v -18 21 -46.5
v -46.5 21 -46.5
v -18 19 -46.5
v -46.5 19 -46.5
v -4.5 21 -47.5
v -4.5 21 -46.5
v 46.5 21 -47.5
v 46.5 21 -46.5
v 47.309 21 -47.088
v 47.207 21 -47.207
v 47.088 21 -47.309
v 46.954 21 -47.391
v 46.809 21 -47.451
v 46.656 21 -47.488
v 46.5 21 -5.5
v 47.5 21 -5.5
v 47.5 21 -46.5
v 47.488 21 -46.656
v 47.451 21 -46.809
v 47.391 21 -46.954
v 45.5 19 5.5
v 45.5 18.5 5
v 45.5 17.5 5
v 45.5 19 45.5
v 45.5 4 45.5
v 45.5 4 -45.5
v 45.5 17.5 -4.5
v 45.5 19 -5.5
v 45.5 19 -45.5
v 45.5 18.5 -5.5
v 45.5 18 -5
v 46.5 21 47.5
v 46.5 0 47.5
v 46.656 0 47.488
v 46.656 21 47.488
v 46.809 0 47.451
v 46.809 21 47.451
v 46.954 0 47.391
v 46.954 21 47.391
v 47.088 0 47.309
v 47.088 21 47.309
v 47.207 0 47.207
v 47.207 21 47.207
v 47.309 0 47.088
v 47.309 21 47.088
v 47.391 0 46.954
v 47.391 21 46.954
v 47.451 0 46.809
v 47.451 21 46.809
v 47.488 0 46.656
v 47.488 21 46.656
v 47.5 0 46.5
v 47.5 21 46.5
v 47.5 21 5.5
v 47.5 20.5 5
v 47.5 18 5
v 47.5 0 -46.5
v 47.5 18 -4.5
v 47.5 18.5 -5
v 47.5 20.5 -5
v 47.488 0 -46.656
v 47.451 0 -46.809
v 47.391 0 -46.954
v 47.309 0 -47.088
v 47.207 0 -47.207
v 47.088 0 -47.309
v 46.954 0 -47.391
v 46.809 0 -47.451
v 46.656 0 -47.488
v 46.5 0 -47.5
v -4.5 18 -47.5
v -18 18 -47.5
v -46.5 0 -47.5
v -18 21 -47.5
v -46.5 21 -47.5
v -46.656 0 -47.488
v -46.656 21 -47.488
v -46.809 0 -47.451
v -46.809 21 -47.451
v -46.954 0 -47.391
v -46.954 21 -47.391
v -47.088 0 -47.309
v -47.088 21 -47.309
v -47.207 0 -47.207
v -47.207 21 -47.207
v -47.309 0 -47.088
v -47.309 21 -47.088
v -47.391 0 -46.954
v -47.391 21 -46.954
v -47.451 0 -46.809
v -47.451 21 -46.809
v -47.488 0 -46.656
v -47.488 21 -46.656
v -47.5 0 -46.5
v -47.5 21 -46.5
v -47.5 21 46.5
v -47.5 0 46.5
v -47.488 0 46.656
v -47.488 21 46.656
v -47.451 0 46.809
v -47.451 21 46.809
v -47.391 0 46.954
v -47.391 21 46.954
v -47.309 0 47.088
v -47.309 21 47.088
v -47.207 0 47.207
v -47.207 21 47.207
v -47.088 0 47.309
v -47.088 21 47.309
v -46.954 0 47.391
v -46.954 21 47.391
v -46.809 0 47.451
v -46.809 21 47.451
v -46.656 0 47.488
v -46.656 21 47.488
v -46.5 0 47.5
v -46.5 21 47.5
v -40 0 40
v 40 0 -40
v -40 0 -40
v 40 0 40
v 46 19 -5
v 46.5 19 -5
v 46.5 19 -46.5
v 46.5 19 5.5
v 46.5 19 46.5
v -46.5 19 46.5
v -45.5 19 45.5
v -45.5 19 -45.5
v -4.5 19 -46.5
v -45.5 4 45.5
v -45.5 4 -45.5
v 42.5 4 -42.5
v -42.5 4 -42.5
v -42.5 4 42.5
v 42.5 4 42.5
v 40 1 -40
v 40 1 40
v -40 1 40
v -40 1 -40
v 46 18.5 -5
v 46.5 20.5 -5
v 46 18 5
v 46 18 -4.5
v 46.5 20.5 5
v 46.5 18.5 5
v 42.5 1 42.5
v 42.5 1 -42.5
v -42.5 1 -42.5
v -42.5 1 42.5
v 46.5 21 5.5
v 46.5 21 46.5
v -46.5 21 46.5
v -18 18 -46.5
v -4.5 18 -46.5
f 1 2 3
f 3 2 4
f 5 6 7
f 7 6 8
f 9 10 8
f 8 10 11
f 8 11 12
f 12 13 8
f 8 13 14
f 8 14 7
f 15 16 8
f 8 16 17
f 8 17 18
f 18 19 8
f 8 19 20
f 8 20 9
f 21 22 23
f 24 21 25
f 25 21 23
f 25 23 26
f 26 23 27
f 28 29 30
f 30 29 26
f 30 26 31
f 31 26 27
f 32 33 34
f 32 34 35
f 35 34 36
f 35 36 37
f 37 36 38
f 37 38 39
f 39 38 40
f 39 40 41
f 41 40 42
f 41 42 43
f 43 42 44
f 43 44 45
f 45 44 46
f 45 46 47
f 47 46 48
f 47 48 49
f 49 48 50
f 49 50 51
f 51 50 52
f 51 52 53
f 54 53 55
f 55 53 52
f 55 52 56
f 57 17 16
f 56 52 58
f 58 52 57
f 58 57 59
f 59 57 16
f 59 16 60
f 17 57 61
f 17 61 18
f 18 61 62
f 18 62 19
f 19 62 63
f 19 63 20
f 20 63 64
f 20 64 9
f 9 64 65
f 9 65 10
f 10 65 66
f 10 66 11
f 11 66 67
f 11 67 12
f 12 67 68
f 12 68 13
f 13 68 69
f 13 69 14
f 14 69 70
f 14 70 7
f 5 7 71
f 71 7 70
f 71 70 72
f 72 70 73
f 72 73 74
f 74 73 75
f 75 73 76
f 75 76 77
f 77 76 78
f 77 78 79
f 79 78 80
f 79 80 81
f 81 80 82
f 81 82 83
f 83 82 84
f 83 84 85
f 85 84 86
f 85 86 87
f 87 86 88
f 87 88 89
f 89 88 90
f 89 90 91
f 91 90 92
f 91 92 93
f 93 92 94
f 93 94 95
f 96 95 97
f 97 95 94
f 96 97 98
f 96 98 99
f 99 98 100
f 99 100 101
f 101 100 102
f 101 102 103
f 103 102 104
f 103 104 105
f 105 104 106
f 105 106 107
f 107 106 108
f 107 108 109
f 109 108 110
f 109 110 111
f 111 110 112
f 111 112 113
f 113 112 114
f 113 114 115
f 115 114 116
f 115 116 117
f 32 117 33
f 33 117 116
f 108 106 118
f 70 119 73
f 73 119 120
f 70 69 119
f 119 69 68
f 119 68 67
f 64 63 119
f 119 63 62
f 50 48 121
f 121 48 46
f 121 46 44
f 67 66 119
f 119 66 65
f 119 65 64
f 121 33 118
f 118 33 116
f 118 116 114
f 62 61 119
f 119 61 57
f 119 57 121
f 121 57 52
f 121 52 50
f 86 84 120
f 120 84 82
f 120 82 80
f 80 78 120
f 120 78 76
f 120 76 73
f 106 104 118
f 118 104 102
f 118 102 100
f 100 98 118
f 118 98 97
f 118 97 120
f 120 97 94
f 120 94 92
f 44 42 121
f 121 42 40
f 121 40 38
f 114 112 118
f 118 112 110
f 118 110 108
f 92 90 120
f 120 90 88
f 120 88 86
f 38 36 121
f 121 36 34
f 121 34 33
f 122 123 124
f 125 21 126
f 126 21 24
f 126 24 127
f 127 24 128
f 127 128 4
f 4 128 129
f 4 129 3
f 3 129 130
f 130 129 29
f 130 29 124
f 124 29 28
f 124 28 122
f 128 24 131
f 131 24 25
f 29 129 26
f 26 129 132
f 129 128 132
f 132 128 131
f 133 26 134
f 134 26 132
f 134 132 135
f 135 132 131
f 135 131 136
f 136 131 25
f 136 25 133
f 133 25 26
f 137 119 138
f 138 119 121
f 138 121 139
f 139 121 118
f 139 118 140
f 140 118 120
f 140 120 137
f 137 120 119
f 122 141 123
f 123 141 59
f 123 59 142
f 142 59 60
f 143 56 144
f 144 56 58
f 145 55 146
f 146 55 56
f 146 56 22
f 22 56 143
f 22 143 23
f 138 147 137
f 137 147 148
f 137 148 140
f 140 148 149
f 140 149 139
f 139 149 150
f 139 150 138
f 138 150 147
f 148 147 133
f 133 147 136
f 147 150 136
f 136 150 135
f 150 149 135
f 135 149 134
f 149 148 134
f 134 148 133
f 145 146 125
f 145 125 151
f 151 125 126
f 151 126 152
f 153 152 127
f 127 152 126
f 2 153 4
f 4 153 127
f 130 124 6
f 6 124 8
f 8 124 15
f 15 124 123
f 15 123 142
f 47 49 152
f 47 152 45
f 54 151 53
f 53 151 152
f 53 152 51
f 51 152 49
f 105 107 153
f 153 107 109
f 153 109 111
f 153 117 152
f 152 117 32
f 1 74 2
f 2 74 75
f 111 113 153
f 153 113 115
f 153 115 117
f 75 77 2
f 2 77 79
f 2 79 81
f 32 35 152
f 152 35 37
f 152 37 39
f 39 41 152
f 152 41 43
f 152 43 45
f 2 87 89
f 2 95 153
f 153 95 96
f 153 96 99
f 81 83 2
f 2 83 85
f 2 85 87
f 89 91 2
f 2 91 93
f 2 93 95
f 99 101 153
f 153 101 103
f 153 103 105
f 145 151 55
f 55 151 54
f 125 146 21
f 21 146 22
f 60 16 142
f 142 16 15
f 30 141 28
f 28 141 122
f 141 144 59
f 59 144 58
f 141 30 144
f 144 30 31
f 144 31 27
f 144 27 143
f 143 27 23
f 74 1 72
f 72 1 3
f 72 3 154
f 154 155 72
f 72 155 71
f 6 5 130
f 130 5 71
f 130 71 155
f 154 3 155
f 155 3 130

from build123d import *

# Parameters (mm, degrees)
BOSS_EXTRUDE1_DEPTH = 4
SKETCH4_W           = 91
SKETCH4_H           = 91
BOSS_EXTRUDE2_DEPTH = 15
CUT_EXTRUDE3_REACH  = 70.829
SKETCH2_W           = 80
SKETCH2_H           = 80
CUT_EXTRUDE6_REACH  = 109.899
SKETCH7_W           = 10
SKETCH7_H           = 1
SKETCH8_W           = 85
SKETCH8_H           = 85
CUT_EXTRUDE7_DEPTH  = 3
BOSS_EXTRUDE3_DEPTH = 2
CHAMFER1_SIZE       = 0.5
CUT_EXTRUDE8_REACH  = 110.269
SKETCH11_W          = 9.5
SKETCH11_H          = 1
CUT_EXTRUDE10_DEPTH = 1


with BuildPart() as part:
    # Sketch1 → Boss-Extrude1 (new body)
    with BuildSketch(Plane(origin=(0, 0, 0), x_dir=(1, 0, 0), z_dir=(0, 1, 0))):
        with BuildLine():
            Line((-46.5, -47.5), (46.5, -47.5))
            ThreePointArc((46.5, -47.5), (47.207106781, -47.207106781), (47.5, -46.5))
            Line((47.5, -46.5), (47.5, 46.5))
            ThreePointArc((47.5, 46.5), (47.207106781, 47.207106781), (46.5, 47.5))
            Line((46.5, 47.5), (-46.5, 47.5))
            ThreePointArc((-46.5, 47.5), (-47.207106781, 47.207106781), (-47.5, 46.5))
            Line((-47.5, 46.5), (-47.5, -46.5))
            ThreePointArc((-47.5, -46.5), (-47.207106781, -47.207106781), (-46.5, -47.5))
        make_face()
    extrude(amount=BOSS_EXTRUDE1_DEPTH)

    # Sketch4 → Boss-Extrude2 (add)
    with BuildSketch(Plane(origin=(0, 4, 0), x_dir=(1, 0, 0), z_dir=(0, 1, 0))):
        with BuildLine():
            Line((47.5, -46.5), (47.5, 46.5))
            ThreePointArc((47.5, 46.5), (47.207106781, 47.207106781), (46.5, 47.5))
            Line((46.5, 47.5), (-46.5, 47.5))
            ThreePointArc((-46.5, 47.5), (-47.207106781, 47.207106781), (-47.5, 46.5))
            Line((-47.5, 46.5), (-47.5, -46.5))
            ThreePointArc((-47.5, -46.5), (-47.207106781, -47.207106781), (-46.5, -47.5))
            Line((-46.5, -47.5), (46.5, -47.5))
            ThreePointArc((46.5, -47.5), (47.207106781, -47.207106781), (47.5, -46.5))
        make_face()
        Rectangle(SKETCH4_W, SKETCH4_H, mode=Mode.SUBTRACT)
    extrude(amount=BOSS_EXTRUDE2_DEPTH)

    # Sketch2 → Cut-Extrude3 (cut, up to next)
    with BuildSketch(Plane(origin=(0, 4, 0), x_dir=(1, 0, 0), z_dir=(0, 1, 0)), mode=Mode.PRIVATE) as cut_extrude3_sk1:
        Rectangle(SKETCH2_W, SKETCH2_H)
    cut_extrude3_tool1 = extrude(cut_extrude3_sk1.sketch, amount=-CUT_EXTRUDE3_REACH, mode=Mode.PRIVATE) & part.part
    add(cut_extrude3_tool1.solids().sort_by_distance((0, 4, 0))[0], mode=Mode.SUBTRACT)

    # Sketch7 → Cut-Extrude6 (cut, up to next)
    with BuildSketch(Plane(origin=(47.5, 0, 0), x_dir=(0, 0, -1), z_dir=(1, 0, 0)), mode=Mode.PRIVATE) as cut_extrude6_sk1:
        with Locations((0, 18.5)):
            Rectangle(SKETCH7_W, SKETCH7_H)
    cut_extrude6_tool1 = extrude(cut_extrude6_sk1.sketch, amount=-CUT_EXTRUDE6_REACH, mode=Mode.PRIVATE) & part.part
    add(cut_extrude6_tool1.solids().sort_by_distance((47.5, 18.5, 0))[0], mode=Mode.SUBTRACT)

    # Sketch8 → Cut-Extrude7 (cut)
    with BuildSketch(Plane(origin=(0, 4, 0), x_dir=(1, 0, 0), z_dir=(0, 1, 0))):
        Rectangle(SKETCH8_W, SKETCH8_H)
    extrude(amount=-CUT_EXTRUDE7_DEPTH, mode=Mode.SUBTRACT)

    # Sketch10 → Boss-Extrude3 (add)
    with BuildSketch(Plane(origin=(0, 19, 0), x_dir=(1, 0, 0), z_dir=(0, 1, 0))):
        with BuildLine():
            Line((46.5, 5), (46.5, 46.5))
            Line((46.5, 46.5), (-46.5, 46.5))
            Line((-46.5, 46.5), (-46.5, -46.5))
            Line((-46.5, -46.5), (46.5, -46.5))
            Line((46.5, -46.5), (46.5, -5))
            Line((46.5, -5), (47.5, -5))
            Line((47.5, -5), (47.5, -46.5))
            ThreePointArc((47.5, -46.5), (47.207106781, -47.207106781), (46.5, -47.5))
            Line((46.5, -47.5), (-46.5, -47.5))
            ThreePointArc((-46.5, -47.5), (-47.207106781, -47.207106781), (-47.5, -46.5))
            Line((-47.5, -46.5), (-47.5, 46.5))
            ThreePointArc((-47.5, 46.5), (-47.207106781, 47.207106781), (-46.5, 47.5))
            Line((-46.5, 47.5), (46.5, 47.5))
            ThreePointArc((46.5, 47.5), (47.207106781, 47.207106781), (47.5, 46.5))
            Line((47.5, 46.5), (47.5, 5))
            Line((47.5, 5), (46.5, 5))
        make_face()
    extrude(amount=BOSS_EXTRUDE3_DEPTH)

    # Chamfer1
    chamfer1_edges = [part.edges().sort_by_distance(p)[0] for p in [
        (47, 21, 5),
        (47, 21, -5),
        (45.5, 18.5, -5),
        (45.5, 18, 0),
        (46.5, 18, -5),
        (46, 19, 5),
    ]]
    chamfer(chamfer1_edges, length=CHAMFER1_SIZE)

    # Sketch11 → Cut-Extrude8 (cut, up to next)
    with BuildSketch(Plane(origin=(0, 0, -47.5), x_dir=(-1, 0, 0), z_dir=(0, 0, -1)), mode=Mode.PRIVATE) as cut_extrude8_sk1:
        with Locations((11.25, 20.5)):
            Rectangle(SKETCH11_W, SKETCH11_H)
    cut_extrude8_tool1 = extrude(cut_extrude8_sk1.sketch, amount=-CUT_EXTRUDE8_REACH, mode=Mode.PRIVATE) & part.part
    add(cut_extrude8_tool1.solids().sort_by_distance((-11.25, 20.5, -47.5))[0], mode=Mode.SUBTRACT)

    # Sketch12 → Cut-Extrude10 (cut)
    with BuildSketch(Plane(origin=(0, 0, -47.5), x_dir=(-1, 0, 0), z_dir=(0, 0, -1))):
        Polygon((16, 20), (16, 21), (18, 21), (18, 18), (4.5, 18), (4.5, 21), (6.5, 21), (6.5, 20), align=None)
    extrude(amount=-CUT_EXTRUDE10_DEPTH, mode=Mode.SUBTRACT)


solid = part.part
